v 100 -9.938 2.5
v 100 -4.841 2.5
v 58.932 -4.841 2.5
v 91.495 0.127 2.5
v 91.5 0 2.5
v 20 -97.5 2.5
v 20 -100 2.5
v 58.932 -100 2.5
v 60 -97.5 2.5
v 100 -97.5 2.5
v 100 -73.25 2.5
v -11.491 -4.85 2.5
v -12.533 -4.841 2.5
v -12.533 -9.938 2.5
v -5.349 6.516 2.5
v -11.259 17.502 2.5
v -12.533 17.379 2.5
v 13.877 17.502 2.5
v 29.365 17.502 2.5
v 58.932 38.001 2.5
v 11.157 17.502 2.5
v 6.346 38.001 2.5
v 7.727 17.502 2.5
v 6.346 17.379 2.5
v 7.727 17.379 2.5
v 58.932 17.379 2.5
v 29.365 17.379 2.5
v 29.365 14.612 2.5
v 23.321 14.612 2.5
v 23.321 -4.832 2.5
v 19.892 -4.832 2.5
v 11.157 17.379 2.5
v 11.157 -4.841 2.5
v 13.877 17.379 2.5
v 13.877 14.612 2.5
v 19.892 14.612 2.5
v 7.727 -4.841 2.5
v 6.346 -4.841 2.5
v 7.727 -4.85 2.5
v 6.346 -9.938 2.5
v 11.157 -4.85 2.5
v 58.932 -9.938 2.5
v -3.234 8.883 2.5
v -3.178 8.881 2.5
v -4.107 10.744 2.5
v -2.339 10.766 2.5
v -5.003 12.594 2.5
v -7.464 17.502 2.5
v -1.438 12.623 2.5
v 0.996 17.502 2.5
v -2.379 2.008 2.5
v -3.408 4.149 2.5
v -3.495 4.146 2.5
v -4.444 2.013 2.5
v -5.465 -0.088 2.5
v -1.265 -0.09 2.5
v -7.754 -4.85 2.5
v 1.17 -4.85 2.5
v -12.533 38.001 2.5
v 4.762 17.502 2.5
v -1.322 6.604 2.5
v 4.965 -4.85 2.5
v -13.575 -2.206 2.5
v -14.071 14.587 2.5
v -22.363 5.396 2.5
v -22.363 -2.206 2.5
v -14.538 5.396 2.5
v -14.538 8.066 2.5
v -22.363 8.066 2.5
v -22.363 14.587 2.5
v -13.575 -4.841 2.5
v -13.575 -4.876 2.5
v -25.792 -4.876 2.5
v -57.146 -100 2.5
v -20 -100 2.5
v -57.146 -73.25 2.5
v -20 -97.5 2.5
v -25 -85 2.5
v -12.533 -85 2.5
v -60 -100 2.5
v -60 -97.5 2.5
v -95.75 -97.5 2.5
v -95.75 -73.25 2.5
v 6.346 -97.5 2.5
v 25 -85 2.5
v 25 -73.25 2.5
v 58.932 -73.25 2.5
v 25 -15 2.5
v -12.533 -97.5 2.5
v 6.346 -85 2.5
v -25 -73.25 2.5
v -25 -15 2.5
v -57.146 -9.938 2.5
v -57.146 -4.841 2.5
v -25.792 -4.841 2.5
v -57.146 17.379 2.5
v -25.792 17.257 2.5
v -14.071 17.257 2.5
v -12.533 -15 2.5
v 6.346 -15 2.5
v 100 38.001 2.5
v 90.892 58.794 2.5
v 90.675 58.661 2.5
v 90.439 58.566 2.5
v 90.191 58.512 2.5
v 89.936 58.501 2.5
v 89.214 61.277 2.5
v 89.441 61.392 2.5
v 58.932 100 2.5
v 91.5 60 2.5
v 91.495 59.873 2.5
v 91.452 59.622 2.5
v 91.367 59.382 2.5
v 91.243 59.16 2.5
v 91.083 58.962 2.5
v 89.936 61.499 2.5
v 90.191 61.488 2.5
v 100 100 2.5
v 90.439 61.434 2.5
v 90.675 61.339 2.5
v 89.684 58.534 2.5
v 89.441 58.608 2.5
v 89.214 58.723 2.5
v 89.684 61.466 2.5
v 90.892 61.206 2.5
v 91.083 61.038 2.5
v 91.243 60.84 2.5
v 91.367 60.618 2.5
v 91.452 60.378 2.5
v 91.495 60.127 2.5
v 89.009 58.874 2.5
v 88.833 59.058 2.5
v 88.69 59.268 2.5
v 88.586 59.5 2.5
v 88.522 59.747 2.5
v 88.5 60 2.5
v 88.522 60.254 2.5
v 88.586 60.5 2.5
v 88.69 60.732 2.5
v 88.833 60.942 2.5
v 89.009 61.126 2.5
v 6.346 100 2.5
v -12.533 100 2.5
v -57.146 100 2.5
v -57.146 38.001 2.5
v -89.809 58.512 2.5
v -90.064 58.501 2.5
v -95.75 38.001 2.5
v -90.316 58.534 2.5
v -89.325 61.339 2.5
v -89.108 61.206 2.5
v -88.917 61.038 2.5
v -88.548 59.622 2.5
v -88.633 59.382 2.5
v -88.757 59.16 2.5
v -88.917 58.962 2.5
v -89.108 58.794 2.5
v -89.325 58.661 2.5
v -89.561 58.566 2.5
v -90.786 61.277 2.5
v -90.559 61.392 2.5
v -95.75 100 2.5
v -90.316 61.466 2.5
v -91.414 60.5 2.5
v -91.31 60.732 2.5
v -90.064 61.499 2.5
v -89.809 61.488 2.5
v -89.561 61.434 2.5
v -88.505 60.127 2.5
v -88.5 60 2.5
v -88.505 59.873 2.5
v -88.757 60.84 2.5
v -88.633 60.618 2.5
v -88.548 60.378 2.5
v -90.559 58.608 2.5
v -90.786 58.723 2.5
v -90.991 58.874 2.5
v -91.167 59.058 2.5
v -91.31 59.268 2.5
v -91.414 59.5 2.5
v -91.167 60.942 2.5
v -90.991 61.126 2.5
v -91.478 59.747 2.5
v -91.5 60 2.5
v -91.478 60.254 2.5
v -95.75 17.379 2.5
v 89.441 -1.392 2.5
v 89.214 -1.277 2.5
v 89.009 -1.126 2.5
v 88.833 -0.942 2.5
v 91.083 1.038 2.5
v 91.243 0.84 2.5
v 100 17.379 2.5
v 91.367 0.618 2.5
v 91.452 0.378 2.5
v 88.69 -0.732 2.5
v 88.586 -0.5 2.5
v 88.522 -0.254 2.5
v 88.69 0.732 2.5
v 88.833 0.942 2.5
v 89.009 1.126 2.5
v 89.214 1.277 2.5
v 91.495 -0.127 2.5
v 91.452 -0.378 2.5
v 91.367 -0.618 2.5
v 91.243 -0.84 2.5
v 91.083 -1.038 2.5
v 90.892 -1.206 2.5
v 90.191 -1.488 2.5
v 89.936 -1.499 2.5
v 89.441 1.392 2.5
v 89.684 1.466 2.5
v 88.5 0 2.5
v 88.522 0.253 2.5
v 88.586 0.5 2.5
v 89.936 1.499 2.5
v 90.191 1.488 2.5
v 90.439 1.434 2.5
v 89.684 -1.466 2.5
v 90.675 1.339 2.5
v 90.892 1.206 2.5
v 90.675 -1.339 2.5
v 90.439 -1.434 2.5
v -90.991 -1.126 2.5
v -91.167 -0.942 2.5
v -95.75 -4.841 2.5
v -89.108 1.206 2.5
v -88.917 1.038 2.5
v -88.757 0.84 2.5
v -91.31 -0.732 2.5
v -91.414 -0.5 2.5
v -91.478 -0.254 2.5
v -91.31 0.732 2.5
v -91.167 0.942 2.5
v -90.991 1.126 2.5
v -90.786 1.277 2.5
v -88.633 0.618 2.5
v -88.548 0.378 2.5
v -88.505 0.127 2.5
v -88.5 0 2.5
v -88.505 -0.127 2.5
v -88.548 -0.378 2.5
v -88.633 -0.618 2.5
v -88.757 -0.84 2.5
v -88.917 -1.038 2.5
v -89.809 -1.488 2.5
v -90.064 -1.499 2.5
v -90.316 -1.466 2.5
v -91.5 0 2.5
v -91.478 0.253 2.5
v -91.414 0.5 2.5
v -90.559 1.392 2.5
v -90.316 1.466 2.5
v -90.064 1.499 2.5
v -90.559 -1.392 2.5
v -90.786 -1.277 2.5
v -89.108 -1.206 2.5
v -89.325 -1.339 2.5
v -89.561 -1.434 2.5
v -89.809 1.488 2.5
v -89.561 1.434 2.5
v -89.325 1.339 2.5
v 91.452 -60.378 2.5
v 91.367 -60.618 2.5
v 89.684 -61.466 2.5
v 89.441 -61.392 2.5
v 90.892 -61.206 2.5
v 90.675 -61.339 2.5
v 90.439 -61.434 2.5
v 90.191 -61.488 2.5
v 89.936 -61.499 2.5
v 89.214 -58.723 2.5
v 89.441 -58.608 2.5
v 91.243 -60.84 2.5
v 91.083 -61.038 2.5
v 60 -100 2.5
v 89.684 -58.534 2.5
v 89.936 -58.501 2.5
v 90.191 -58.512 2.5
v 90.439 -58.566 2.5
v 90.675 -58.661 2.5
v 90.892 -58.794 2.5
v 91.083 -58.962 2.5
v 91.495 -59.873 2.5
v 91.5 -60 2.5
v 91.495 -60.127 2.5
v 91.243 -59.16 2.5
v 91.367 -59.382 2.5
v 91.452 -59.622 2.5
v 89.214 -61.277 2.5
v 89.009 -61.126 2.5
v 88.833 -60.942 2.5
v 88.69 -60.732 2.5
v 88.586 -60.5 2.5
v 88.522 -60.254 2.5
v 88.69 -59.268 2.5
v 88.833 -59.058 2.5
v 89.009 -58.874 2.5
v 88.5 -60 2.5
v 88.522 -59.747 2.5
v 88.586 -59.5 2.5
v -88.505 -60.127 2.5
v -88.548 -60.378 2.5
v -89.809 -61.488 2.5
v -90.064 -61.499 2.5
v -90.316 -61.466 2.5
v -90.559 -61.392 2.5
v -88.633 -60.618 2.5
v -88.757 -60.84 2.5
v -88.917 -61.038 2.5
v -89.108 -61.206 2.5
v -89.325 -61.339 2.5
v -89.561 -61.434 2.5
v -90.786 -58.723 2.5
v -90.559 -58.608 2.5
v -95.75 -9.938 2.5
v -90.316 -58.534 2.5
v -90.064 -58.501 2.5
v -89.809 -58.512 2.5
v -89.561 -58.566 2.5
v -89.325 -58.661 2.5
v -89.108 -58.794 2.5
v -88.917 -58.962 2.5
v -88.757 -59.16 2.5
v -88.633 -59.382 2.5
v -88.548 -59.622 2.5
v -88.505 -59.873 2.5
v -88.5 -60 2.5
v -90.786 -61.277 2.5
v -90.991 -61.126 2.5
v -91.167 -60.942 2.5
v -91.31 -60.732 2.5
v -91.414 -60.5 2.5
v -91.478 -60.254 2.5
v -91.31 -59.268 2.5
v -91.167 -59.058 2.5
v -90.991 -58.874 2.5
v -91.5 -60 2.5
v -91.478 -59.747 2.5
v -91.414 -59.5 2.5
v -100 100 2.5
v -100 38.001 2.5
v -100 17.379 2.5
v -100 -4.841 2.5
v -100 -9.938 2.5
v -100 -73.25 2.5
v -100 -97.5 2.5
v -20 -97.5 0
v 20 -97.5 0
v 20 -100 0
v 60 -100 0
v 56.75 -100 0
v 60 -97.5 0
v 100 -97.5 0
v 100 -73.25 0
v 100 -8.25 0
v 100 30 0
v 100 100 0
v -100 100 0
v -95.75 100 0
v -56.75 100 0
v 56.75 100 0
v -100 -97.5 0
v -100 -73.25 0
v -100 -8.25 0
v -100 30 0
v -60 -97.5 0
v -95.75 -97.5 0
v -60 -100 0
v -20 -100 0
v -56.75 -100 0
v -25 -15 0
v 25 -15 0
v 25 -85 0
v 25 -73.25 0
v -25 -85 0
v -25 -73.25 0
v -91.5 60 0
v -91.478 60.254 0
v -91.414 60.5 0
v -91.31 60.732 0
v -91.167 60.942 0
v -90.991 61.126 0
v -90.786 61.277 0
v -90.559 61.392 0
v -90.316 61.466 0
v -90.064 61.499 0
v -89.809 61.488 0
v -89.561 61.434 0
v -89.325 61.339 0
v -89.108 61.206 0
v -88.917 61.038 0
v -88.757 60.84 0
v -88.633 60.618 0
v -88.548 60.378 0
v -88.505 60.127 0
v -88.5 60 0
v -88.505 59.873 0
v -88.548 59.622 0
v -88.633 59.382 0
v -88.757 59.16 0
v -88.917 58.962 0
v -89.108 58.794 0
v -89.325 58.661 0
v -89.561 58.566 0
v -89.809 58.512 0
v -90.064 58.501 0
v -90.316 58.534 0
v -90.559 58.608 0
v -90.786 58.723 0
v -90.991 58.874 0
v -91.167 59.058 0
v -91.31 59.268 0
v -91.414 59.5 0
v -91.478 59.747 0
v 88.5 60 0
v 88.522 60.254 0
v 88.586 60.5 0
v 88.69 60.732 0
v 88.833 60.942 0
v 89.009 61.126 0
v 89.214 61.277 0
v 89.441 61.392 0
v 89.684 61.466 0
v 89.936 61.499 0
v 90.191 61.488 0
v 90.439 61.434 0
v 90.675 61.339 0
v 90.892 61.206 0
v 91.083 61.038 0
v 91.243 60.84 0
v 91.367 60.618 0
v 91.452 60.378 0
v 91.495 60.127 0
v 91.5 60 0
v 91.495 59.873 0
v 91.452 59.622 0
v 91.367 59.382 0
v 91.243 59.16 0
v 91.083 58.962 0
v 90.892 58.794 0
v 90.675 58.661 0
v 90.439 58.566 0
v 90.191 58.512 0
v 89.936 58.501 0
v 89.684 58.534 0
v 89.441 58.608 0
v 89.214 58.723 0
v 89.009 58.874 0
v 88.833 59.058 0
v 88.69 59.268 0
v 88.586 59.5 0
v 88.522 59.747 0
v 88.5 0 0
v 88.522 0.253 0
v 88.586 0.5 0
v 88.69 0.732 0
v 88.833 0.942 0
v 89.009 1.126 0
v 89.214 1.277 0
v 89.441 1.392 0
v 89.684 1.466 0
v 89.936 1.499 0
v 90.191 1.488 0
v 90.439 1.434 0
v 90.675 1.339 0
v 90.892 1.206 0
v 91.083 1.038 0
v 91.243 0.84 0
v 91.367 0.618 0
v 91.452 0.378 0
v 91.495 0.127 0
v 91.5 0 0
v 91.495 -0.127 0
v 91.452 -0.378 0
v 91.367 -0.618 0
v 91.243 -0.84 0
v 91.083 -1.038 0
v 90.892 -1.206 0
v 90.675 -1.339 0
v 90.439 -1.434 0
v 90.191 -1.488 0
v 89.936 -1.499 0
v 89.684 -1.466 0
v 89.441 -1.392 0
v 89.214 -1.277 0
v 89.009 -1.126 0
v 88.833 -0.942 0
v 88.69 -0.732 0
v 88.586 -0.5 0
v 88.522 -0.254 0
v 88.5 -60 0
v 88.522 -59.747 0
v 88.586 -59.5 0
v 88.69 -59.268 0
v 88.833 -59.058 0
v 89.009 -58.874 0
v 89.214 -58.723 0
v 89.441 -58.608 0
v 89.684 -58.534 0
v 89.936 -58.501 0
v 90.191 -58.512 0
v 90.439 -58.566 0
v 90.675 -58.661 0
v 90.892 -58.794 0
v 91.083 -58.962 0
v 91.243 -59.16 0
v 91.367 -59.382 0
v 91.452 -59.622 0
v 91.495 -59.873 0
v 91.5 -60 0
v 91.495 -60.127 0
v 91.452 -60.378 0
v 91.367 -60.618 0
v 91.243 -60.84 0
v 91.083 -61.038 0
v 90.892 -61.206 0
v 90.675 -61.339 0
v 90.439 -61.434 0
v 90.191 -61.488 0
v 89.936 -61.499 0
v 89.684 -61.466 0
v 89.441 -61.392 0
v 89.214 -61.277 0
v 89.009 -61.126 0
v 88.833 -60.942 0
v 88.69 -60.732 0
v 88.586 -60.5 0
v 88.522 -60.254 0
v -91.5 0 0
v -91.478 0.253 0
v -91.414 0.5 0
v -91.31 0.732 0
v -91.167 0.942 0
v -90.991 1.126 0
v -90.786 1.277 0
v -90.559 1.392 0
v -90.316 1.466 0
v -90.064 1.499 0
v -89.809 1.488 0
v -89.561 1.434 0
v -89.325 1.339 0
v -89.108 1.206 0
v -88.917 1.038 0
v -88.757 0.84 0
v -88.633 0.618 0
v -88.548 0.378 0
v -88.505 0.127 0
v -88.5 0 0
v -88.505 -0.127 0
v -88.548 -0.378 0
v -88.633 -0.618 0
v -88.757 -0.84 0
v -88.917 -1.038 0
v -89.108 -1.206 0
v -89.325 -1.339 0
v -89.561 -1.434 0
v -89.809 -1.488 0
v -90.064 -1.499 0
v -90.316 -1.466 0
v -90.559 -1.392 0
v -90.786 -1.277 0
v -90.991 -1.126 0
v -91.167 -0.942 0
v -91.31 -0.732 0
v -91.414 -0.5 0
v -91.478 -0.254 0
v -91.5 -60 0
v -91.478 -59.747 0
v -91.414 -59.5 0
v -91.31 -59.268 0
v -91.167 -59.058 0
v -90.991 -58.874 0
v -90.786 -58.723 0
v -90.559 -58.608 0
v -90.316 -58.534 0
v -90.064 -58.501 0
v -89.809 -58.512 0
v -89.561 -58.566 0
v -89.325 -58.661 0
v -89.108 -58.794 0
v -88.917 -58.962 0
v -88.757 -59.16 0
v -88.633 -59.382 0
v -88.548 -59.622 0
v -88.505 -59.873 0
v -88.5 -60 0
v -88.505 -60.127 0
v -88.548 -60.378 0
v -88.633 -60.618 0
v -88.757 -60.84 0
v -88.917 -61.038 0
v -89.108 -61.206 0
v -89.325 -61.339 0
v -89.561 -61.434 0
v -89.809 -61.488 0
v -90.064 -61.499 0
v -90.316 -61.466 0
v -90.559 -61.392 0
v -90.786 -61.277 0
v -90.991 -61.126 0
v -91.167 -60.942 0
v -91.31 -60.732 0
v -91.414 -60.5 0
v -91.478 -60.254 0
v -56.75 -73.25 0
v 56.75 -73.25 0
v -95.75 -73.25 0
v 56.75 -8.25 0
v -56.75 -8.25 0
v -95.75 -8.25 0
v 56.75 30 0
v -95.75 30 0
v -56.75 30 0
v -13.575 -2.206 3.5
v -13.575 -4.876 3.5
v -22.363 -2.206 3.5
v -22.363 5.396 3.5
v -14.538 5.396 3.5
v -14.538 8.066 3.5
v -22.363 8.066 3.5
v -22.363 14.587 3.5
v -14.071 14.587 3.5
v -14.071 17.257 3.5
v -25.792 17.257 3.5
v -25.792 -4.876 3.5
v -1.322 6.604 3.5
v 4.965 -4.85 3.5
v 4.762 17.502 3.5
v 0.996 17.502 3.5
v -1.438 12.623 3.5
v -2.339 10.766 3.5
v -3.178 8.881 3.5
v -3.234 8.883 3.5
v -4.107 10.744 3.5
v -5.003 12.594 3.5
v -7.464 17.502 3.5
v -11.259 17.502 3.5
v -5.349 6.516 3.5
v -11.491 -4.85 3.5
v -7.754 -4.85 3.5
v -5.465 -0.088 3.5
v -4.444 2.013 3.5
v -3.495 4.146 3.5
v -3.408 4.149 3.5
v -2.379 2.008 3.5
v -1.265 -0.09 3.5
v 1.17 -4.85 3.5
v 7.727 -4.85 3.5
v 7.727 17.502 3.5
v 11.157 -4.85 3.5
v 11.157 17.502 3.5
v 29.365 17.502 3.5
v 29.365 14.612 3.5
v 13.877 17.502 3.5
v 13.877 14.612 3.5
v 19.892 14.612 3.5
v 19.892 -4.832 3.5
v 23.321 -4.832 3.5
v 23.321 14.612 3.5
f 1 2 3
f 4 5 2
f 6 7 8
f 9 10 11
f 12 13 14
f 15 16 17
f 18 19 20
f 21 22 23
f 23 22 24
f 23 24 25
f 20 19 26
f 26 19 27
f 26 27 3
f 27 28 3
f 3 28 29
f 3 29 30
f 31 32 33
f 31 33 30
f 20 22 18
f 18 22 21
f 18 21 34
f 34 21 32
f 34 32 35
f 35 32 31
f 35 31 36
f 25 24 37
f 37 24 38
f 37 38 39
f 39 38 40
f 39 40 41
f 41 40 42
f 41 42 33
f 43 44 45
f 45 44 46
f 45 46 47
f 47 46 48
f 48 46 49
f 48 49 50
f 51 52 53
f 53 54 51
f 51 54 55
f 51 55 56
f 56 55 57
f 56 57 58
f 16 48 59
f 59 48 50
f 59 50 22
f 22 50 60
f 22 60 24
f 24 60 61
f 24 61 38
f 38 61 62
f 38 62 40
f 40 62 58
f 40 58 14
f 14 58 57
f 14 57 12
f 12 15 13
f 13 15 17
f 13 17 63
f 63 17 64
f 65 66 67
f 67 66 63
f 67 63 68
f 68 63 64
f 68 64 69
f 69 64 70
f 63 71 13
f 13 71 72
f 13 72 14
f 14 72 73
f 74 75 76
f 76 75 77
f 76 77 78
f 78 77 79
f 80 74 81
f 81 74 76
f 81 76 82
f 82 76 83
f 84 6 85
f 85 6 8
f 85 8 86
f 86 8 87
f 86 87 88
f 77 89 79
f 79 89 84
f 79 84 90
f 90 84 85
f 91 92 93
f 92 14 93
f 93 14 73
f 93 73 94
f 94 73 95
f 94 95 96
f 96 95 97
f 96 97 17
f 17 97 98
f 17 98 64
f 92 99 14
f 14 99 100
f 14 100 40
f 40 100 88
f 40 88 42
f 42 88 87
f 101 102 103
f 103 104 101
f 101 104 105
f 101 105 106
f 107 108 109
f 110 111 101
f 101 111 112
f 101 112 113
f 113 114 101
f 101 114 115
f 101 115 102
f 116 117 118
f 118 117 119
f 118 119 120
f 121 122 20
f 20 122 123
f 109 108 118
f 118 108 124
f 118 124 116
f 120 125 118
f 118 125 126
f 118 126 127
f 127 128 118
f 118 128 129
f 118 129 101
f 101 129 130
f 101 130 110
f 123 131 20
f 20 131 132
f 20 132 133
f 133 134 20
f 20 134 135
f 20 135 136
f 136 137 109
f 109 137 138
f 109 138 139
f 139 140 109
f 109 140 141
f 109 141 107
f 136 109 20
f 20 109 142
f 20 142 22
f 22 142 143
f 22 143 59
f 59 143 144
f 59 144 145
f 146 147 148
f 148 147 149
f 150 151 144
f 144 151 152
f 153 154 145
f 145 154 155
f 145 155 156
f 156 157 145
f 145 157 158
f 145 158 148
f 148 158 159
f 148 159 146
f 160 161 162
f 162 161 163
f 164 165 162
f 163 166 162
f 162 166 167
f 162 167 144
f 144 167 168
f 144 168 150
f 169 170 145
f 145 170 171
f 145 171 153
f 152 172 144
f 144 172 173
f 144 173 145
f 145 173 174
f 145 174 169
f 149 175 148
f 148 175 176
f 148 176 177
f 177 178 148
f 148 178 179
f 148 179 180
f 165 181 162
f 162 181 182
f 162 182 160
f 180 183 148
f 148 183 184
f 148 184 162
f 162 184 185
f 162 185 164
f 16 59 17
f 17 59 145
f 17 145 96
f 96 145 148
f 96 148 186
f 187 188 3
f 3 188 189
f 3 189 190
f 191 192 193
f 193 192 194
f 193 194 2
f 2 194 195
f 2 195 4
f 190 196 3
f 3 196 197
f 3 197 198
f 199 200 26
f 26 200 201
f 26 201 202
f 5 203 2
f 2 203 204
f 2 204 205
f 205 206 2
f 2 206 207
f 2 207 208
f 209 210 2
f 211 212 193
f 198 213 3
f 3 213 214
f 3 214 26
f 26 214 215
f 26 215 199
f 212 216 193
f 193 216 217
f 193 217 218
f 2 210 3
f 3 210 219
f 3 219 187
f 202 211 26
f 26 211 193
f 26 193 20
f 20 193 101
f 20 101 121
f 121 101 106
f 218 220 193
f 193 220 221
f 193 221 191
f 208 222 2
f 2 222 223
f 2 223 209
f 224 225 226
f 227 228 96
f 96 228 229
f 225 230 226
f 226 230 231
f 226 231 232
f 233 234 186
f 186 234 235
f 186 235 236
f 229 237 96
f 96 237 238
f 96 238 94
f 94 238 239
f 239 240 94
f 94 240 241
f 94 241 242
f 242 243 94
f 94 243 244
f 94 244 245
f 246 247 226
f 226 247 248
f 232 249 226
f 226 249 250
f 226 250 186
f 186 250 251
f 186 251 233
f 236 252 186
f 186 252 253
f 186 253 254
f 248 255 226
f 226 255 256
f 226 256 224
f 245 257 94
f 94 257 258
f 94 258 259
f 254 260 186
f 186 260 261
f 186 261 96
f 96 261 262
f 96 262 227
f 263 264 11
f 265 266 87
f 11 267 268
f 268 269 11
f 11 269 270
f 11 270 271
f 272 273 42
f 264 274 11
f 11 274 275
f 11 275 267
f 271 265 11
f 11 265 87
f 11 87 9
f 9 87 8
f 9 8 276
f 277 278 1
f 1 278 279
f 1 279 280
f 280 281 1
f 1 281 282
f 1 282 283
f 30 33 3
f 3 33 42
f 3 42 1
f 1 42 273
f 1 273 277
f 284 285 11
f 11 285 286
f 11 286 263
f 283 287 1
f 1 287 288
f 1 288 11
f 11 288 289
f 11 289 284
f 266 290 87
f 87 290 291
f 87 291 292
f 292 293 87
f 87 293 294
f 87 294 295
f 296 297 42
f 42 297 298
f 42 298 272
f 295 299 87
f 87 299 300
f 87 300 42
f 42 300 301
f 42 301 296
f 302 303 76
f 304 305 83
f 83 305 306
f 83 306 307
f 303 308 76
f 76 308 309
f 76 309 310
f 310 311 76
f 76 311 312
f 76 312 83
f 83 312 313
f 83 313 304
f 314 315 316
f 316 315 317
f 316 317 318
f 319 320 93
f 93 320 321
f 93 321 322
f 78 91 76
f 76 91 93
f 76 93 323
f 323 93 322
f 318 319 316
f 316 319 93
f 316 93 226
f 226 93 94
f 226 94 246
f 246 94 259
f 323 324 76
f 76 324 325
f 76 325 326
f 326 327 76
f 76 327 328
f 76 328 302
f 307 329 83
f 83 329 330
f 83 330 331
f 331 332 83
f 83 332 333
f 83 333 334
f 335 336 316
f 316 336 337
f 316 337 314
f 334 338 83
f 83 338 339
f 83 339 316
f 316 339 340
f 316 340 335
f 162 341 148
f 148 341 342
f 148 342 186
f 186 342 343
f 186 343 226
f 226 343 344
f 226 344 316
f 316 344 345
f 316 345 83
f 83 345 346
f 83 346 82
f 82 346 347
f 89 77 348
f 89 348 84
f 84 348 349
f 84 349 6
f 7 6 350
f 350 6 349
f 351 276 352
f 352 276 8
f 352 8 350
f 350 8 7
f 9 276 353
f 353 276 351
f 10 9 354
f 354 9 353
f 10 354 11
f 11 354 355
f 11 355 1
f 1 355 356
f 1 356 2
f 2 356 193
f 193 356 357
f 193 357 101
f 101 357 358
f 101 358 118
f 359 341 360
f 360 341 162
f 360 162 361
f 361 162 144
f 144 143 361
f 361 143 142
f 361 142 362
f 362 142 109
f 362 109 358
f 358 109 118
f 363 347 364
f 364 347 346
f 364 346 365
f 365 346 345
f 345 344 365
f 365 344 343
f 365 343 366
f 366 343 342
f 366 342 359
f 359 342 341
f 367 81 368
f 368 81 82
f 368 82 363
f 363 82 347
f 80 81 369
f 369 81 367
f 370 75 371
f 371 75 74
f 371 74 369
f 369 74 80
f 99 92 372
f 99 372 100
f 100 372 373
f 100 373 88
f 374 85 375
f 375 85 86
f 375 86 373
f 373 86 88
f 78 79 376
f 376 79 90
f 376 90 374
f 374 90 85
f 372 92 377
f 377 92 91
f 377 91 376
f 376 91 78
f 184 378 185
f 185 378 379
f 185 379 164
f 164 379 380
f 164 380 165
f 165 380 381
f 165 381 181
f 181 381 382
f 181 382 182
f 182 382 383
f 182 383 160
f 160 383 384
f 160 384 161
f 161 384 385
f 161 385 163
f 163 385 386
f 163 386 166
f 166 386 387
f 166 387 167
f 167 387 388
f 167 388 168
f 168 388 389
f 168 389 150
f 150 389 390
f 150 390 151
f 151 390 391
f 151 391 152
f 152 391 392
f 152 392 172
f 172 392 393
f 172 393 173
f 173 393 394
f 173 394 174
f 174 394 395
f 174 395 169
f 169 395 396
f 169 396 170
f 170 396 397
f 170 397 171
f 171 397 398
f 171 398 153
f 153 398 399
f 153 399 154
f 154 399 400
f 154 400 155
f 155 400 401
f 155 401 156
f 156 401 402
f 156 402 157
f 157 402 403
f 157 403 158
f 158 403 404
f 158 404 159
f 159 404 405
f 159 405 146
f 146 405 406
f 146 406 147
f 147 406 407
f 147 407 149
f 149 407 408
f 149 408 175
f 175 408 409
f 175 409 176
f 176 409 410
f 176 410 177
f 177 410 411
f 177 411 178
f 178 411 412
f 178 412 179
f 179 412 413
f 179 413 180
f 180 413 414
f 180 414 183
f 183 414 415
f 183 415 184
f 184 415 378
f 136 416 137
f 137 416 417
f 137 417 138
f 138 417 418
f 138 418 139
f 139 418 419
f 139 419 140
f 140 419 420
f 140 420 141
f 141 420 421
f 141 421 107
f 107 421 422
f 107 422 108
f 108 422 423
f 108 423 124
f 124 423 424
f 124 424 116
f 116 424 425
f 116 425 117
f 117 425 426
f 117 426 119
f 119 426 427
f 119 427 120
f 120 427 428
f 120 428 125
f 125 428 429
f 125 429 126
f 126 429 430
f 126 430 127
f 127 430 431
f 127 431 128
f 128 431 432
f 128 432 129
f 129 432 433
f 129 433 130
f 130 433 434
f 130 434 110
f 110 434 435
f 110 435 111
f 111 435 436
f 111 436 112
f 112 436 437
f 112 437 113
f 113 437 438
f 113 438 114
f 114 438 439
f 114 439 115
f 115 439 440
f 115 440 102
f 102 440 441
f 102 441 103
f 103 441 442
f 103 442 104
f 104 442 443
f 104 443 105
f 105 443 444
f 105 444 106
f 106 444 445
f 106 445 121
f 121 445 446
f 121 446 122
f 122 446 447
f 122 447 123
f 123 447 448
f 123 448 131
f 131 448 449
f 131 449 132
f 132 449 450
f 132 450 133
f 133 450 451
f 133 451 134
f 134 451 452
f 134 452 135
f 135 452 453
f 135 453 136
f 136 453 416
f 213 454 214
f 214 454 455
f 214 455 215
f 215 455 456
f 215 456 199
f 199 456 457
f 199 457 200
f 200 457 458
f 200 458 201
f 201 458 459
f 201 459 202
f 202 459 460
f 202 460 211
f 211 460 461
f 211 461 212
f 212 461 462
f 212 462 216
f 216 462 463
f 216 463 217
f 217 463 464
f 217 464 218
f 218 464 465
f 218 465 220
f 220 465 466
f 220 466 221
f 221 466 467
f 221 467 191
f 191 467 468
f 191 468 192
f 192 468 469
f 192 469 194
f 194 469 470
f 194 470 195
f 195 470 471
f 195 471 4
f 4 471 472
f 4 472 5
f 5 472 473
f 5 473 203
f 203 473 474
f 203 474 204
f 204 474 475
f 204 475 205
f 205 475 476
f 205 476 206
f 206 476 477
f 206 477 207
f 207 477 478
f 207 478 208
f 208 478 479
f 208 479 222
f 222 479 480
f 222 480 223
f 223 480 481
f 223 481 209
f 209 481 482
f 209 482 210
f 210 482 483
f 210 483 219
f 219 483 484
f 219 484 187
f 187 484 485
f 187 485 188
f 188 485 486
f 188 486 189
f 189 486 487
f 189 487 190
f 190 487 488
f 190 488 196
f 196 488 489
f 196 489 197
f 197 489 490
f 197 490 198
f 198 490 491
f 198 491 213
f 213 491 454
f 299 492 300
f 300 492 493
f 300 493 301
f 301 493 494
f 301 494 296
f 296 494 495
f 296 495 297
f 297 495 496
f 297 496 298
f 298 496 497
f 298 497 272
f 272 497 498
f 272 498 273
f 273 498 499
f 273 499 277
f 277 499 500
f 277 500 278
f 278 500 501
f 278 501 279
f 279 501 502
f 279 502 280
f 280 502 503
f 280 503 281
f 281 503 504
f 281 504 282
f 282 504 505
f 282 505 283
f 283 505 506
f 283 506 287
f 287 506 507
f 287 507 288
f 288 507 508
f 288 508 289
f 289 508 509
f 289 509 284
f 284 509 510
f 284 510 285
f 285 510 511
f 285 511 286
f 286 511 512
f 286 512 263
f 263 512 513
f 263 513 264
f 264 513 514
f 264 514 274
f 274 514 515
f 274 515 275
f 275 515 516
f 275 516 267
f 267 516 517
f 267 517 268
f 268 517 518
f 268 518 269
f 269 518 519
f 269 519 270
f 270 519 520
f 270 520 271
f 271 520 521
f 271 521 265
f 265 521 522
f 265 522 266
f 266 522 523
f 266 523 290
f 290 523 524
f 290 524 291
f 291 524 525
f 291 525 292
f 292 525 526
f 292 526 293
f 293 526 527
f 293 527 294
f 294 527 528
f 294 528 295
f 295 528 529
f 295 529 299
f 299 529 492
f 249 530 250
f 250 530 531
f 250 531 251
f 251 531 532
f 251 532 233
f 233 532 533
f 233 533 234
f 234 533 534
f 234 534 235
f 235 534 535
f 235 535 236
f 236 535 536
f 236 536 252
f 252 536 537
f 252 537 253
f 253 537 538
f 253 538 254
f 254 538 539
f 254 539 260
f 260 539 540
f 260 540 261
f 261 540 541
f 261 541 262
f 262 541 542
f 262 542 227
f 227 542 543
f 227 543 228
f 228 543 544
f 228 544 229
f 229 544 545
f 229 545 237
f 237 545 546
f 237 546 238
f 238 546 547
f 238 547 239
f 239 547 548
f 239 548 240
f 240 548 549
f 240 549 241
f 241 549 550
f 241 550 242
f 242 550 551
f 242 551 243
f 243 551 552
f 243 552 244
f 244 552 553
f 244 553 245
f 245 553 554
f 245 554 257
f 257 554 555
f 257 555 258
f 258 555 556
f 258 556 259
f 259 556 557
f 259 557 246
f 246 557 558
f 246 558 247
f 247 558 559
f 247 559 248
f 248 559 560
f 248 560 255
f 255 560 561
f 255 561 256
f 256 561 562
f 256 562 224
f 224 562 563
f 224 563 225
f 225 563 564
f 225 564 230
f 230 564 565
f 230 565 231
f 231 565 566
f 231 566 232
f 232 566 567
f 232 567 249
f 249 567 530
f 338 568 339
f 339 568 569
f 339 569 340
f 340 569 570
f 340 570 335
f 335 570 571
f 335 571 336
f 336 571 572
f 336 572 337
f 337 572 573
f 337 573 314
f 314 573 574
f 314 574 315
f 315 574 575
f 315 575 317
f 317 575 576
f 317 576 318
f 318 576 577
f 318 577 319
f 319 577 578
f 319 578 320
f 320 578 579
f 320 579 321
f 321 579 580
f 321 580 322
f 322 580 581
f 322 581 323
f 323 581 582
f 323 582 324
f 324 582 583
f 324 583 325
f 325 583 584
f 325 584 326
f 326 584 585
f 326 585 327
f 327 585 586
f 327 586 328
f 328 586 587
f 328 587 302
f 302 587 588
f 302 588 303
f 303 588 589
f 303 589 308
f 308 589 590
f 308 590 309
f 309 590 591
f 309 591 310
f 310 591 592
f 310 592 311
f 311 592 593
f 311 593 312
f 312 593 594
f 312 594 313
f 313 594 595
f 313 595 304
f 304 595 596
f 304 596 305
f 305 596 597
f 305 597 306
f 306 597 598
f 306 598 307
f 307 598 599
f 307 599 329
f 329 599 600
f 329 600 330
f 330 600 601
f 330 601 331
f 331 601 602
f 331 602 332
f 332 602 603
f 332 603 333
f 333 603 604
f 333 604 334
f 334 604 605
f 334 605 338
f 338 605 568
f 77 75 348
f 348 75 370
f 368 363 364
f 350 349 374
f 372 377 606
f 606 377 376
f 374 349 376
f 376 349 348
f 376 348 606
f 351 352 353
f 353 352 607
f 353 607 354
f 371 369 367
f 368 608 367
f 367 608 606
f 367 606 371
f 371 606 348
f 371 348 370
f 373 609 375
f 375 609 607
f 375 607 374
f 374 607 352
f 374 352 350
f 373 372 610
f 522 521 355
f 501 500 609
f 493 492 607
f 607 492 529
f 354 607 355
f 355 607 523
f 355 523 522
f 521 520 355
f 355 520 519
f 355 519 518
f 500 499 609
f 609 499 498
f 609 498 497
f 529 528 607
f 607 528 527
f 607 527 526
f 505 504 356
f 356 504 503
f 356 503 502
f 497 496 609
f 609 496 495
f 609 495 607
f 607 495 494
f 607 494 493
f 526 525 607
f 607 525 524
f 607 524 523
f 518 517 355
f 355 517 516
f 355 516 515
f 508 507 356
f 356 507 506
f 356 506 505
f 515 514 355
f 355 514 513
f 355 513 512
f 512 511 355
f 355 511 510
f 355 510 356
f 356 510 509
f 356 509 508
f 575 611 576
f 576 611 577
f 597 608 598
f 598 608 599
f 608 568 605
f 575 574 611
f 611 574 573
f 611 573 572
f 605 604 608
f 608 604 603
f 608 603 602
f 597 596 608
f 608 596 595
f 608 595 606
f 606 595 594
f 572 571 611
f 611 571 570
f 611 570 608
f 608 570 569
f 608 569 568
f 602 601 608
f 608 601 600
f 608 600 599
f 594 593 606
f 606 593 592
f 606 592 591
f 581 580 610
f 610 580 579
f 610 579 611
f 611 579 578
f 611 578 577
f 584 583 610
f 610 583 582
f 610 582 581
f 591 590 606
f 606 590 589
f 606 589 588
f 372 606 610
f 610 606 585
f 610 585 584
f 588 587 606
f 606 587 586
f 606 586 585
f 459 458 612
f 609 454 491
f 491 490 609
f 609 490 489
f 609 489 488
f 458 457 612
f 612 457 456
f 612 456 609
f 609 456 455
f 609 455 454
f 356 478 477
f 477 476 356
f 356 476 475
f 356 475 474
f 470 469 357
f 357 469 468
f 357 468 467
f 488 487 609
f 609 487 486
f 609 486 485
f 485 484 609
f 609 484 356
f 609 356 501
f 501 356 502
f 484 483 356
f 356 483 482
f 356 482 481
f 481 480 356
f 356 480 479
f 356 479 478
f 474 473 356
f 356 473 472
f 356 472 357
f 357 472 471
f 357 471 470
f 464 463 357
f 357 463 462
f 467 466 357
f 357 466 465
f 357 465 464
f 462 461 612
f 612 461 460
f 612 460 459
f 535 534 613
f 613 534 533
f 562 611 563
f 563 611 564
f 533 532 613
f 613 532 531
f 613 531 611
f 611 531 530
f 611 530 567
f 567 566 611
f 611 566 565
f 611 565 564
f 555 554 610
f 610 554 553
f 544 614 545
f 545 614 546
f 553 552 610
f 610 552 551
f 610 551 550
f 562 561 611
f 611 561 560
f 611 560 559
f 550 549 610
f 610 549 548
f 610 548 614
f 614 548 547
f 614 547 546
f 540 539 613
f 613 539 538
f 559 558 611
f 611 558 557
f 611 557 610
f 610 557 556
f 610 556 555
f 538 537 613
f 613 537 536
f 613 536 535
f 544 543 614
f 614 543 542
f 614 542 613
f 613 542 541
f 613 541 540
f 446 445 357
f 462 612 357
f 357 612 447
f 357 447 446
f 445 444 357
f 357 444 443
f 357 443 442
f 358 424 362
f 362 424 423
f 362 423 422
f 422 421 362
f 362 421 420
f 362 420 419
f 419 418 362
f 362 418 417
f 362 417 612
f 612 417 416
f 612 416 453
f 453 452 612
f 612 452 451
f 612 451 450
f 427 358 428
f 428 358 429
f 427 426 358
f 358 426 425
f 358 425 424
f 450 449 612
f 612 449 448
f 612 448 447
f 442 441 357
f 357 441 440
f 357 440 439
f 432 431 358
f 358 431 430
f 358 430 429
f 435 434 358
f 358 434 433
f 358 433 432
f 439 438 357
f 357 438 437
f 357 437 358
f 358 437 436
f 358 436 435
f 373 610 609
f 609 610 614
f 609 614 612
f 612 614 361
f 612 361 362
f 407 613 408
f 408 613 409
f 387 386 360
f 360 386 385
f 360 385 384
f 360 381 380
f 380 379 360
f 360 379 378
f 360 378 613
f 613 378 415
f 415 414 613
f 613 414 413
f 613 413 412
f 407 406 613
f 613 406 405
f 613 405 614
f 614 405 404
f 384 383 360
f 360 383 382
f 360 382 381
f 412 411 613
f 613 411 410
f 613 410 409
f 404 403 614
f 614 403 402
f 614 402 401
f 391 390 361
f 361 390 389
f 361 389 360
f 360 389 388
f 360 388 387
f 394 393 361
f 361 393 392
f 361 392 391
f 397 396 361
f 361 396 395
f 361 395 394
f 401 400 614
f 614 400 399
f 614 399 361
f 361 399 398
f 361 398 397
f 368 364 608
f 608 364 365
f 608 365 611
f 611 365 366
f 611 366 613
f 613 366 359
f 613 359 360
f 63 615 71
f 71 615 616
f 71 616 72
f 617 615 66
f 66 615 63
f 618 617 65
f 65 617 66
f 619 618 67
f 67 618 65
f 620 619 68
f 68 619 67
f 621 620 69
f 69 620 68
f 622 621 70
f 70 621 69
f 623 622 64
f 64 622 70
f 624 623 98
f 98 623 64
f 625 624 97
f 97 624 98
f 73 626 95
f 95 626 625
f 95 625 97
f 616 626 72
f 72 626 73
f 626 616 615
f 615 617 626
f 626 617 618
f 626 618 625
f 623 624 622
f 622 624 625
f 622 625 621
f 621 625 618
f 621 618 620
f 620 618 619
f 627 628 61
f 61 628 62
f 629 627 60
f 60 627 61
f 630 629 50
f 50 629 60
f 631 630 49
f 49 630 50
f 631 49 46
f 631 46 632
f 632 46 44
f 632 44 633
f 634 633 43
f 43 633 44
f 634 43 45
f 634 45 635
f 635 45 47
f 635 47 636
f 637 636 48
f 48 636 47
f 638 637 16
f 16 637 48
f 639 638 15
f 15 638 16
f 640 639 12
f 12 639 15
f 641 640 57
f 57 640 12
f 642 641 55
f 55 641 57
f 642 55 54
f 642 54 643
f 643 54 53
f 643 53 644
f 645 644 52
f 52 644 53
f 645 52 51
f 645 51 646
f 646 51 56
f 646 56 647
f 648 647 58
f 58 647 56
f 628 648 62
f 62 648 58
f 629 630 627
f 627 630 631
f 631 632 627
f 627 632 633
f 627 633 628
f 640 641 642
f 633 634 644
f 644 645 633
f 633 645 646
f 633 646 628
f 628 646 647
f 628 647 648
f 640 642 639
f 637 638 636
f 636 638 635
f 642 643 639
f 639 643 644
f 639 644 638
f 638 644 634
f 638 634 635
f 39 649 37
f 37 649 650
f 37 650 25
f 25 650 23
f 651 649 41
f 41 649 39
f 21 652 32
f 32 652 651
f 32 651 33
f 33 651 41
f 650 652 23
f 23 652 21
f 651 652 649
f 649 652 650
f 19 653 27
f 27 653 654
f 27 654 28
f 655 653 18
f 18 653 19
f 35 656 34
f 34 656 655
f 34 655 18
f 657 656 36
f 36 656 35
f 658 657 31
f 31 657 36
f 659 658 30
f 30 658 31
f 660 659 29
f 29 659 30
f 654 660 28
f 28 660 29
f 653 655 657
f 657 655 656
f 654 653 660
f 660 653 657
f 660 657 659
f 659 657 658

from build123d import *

# Parameters (mm, degrees)
SKETCH1_R           = 1.5
SKETCH1_W           = 50
SKETCH1_H           = 70
BOSS_EXTRUDE1_DEPTH = 2.5
SKETCH2_W           = 3.429676715
SKETCH2_H           = 22.352
BOSS_EXTRUDE2_DEPTH = 1


with BuildPart() as part:
    # Sketch1 → Boss-Extrude1 (new body)
    with BuildSketch(Plane.XY):
        Polygon((100, 100), (-100, 100), (-100, -97.5), (-60, -97.5), (-60, -100), (-20, -100), (-20, -97.5), (20, -97.5), (20, -100), (60, -100), (60, -97.5), (100, -97.5), align=None)
        with Locations((-90, -60)):
            Circle(SKETCH1_R, mode=Mode.SUBTRACT)
        with Locations((-90, 0)):
            Circle(SKETCH1_R, mode=Mode.SUBTRACT)
        with Locations((0, -50)):
            Rectangle(SKETCH1_W, SKETCH1_H, mode=Mode.SUBTRACT)
        with Locations((90, -60)):
            Circle(SKETCH1_R, mode=Mode.SUBTRACT)
        with Locations((90, 0)):
            Circle(SKETCH1_R, mode=Mode.SUBTRACT)
        with Locations((-90, 60)):
            Circle(SKETCH1_R, mode=Mode.SUBTRACT)
        with Locations((90, 60)):
            Circle(SKETCH1_R, mode=Mode.SUBTRACT)
    extrude(amount=BOSS_EXTRUDE1_DEPTH)

    # Sketch2 → Boss-Extrude2 (add)
    with BuildSketch(Plane.XY.offset(2.5)):
        Polygon((-13.574972078, -2.206402508), (-22.362641896, -2.206402508), (-22.362641896, 5.396315859), (-14.538404318, 5.396315859), (-14.538404318, 8.0657162), (-22.362641896, 8.0657162), (-22.362641896, 14.587158479), (-14.071285656, 14.587158479), (-14.071285656, 17.256562946), (-25.792318612, 17.256562946), (-25.792318612, -4.875802849), (-13.574972078, -4.875802849), align=None)
        with BuildLine():
            Line((-1.32204553, 6.603648154), (4.762112339, 17.501539559))
            Line((4.762112339, 17.501539559), (0.995728896, 17.501539559))
            Line((0.995728896, 17.501539559), (-1.437934251, 12.6228991))
            add(Edge.make_bspline(
                [(-1.437934251, 12.6228991), (-1.596718144, 12.303861859), (-1.904219722, 11.686012946), (-2.342902996, 10.763464709), (-2.769861176, 9.837525479), (-3.03923337, 9.20683016), (-3.17843881, 8.880901126)],
                knots=[0, 0, 0, 0, 1.03599958, 2.006321307, 2.969712076, 4, 4, 4, 4], degree=3))
            Line((-3.17843881, 8.880901126), (-3.234209432, 8.882782007))
            add(Edge.make_bspline(
                [(-3.234209432, 8.882782007), (-3.377496248, 9.189095467), (-3.661154937, 9.795490923), (-4.089483987, 10.709635801), (-4.532333468, 11.641980958), (-4.843108785, 12.270176419), (-5.003092207, 12.593563942)],
                knots=[0, 0, 0, 0, 0.987131341, 1.954181056, 2.946836831, 4, 4, 4, 4], degree=3))
            Line((-5.003092207, 12.593563942), (-7.46414776, 17.501539559))
            Line((-7.46414776, 17.501539559), (-11.259503382, 17.501539559))
            Line((-11.259503382, 17.501539559), (-5.349178596, 6.51598916))
            Line((-5.349178596, 6.51598916), (-11.490752858, -4.850460441))
            Line((-11.490752858, -4.850460441), (-7.753869563, -4.850460441))
            Line((-7.753869563, -4.850460441), (-5.465067317, -0.087655081))
            add(Edge.make_bspline(
                [(-5.465067317, -0.087655081), (-5.364335932, 0.114078616), (-5.167684585, 0.507910222), (-4.884459094, 1.085166952), (-4.624500068, 1.634448669), (-4.297310404, 2.31859573), (-3.914960495, 3.148810565), (-3.634210423, 3.815857985), (-3.495218913, 4.146094507)],
                knots=[0, 0, 0, 0, 0.869006123, 1.696504258, 2.478000857, 3.2109747, 4.619231574, 6, 6, 6, 6], degree=3))
            Line((-3.495218913, 4.146094507), (-3.408042514, 4.149196312))
            add(Edge.make_bspline(
                [(-3.408042514, 4.149196312), (-3.255611823, 3.817980032), (-2.94839099, 3.150420628), (-2.536943481, 2.319070478), (-2.189297936, 1.63260853), (-1.901799923, 1.085781735), (-1.594451142, 0.505813053), (-1.376920295, 0.112098507), (-1.265086983, -0.090311414)],
                knots=[0, 0, 0, 0, 1.381153135, 2.783684921, 3.513572612, 4.296050064, 5.123993829, 6, 6, 6, 6], degree=3))
            Line((-1.265086983, -0.090311414), (1.169561978, -4.850460441))
            Line((1.169561978, -4.850460441), (4.964917601, -4.850460441))
            Line((4.964917601, -4.850460441), (-1.32204553, 6.603648154))
        make_face()
        with Locations((9.442078464, 6.325539559)):
            Rectangle(SKETCH2_W, SKETCH2_H)
        Polygon((29.36462049, 17.50216652), (13.877443327, 17.50216652), (13.877443327, 14.611869802), (19.891596092, 14.611869802), (19.891596092, -4.831944479), (23.321272808, -4.831944479), (23.321272808, 14.611869802), (29.36462049, 14.611869802), align=None)
    extrude(amount=BOSS_EXTRUDE2_DEPTH)


solid = part.part
